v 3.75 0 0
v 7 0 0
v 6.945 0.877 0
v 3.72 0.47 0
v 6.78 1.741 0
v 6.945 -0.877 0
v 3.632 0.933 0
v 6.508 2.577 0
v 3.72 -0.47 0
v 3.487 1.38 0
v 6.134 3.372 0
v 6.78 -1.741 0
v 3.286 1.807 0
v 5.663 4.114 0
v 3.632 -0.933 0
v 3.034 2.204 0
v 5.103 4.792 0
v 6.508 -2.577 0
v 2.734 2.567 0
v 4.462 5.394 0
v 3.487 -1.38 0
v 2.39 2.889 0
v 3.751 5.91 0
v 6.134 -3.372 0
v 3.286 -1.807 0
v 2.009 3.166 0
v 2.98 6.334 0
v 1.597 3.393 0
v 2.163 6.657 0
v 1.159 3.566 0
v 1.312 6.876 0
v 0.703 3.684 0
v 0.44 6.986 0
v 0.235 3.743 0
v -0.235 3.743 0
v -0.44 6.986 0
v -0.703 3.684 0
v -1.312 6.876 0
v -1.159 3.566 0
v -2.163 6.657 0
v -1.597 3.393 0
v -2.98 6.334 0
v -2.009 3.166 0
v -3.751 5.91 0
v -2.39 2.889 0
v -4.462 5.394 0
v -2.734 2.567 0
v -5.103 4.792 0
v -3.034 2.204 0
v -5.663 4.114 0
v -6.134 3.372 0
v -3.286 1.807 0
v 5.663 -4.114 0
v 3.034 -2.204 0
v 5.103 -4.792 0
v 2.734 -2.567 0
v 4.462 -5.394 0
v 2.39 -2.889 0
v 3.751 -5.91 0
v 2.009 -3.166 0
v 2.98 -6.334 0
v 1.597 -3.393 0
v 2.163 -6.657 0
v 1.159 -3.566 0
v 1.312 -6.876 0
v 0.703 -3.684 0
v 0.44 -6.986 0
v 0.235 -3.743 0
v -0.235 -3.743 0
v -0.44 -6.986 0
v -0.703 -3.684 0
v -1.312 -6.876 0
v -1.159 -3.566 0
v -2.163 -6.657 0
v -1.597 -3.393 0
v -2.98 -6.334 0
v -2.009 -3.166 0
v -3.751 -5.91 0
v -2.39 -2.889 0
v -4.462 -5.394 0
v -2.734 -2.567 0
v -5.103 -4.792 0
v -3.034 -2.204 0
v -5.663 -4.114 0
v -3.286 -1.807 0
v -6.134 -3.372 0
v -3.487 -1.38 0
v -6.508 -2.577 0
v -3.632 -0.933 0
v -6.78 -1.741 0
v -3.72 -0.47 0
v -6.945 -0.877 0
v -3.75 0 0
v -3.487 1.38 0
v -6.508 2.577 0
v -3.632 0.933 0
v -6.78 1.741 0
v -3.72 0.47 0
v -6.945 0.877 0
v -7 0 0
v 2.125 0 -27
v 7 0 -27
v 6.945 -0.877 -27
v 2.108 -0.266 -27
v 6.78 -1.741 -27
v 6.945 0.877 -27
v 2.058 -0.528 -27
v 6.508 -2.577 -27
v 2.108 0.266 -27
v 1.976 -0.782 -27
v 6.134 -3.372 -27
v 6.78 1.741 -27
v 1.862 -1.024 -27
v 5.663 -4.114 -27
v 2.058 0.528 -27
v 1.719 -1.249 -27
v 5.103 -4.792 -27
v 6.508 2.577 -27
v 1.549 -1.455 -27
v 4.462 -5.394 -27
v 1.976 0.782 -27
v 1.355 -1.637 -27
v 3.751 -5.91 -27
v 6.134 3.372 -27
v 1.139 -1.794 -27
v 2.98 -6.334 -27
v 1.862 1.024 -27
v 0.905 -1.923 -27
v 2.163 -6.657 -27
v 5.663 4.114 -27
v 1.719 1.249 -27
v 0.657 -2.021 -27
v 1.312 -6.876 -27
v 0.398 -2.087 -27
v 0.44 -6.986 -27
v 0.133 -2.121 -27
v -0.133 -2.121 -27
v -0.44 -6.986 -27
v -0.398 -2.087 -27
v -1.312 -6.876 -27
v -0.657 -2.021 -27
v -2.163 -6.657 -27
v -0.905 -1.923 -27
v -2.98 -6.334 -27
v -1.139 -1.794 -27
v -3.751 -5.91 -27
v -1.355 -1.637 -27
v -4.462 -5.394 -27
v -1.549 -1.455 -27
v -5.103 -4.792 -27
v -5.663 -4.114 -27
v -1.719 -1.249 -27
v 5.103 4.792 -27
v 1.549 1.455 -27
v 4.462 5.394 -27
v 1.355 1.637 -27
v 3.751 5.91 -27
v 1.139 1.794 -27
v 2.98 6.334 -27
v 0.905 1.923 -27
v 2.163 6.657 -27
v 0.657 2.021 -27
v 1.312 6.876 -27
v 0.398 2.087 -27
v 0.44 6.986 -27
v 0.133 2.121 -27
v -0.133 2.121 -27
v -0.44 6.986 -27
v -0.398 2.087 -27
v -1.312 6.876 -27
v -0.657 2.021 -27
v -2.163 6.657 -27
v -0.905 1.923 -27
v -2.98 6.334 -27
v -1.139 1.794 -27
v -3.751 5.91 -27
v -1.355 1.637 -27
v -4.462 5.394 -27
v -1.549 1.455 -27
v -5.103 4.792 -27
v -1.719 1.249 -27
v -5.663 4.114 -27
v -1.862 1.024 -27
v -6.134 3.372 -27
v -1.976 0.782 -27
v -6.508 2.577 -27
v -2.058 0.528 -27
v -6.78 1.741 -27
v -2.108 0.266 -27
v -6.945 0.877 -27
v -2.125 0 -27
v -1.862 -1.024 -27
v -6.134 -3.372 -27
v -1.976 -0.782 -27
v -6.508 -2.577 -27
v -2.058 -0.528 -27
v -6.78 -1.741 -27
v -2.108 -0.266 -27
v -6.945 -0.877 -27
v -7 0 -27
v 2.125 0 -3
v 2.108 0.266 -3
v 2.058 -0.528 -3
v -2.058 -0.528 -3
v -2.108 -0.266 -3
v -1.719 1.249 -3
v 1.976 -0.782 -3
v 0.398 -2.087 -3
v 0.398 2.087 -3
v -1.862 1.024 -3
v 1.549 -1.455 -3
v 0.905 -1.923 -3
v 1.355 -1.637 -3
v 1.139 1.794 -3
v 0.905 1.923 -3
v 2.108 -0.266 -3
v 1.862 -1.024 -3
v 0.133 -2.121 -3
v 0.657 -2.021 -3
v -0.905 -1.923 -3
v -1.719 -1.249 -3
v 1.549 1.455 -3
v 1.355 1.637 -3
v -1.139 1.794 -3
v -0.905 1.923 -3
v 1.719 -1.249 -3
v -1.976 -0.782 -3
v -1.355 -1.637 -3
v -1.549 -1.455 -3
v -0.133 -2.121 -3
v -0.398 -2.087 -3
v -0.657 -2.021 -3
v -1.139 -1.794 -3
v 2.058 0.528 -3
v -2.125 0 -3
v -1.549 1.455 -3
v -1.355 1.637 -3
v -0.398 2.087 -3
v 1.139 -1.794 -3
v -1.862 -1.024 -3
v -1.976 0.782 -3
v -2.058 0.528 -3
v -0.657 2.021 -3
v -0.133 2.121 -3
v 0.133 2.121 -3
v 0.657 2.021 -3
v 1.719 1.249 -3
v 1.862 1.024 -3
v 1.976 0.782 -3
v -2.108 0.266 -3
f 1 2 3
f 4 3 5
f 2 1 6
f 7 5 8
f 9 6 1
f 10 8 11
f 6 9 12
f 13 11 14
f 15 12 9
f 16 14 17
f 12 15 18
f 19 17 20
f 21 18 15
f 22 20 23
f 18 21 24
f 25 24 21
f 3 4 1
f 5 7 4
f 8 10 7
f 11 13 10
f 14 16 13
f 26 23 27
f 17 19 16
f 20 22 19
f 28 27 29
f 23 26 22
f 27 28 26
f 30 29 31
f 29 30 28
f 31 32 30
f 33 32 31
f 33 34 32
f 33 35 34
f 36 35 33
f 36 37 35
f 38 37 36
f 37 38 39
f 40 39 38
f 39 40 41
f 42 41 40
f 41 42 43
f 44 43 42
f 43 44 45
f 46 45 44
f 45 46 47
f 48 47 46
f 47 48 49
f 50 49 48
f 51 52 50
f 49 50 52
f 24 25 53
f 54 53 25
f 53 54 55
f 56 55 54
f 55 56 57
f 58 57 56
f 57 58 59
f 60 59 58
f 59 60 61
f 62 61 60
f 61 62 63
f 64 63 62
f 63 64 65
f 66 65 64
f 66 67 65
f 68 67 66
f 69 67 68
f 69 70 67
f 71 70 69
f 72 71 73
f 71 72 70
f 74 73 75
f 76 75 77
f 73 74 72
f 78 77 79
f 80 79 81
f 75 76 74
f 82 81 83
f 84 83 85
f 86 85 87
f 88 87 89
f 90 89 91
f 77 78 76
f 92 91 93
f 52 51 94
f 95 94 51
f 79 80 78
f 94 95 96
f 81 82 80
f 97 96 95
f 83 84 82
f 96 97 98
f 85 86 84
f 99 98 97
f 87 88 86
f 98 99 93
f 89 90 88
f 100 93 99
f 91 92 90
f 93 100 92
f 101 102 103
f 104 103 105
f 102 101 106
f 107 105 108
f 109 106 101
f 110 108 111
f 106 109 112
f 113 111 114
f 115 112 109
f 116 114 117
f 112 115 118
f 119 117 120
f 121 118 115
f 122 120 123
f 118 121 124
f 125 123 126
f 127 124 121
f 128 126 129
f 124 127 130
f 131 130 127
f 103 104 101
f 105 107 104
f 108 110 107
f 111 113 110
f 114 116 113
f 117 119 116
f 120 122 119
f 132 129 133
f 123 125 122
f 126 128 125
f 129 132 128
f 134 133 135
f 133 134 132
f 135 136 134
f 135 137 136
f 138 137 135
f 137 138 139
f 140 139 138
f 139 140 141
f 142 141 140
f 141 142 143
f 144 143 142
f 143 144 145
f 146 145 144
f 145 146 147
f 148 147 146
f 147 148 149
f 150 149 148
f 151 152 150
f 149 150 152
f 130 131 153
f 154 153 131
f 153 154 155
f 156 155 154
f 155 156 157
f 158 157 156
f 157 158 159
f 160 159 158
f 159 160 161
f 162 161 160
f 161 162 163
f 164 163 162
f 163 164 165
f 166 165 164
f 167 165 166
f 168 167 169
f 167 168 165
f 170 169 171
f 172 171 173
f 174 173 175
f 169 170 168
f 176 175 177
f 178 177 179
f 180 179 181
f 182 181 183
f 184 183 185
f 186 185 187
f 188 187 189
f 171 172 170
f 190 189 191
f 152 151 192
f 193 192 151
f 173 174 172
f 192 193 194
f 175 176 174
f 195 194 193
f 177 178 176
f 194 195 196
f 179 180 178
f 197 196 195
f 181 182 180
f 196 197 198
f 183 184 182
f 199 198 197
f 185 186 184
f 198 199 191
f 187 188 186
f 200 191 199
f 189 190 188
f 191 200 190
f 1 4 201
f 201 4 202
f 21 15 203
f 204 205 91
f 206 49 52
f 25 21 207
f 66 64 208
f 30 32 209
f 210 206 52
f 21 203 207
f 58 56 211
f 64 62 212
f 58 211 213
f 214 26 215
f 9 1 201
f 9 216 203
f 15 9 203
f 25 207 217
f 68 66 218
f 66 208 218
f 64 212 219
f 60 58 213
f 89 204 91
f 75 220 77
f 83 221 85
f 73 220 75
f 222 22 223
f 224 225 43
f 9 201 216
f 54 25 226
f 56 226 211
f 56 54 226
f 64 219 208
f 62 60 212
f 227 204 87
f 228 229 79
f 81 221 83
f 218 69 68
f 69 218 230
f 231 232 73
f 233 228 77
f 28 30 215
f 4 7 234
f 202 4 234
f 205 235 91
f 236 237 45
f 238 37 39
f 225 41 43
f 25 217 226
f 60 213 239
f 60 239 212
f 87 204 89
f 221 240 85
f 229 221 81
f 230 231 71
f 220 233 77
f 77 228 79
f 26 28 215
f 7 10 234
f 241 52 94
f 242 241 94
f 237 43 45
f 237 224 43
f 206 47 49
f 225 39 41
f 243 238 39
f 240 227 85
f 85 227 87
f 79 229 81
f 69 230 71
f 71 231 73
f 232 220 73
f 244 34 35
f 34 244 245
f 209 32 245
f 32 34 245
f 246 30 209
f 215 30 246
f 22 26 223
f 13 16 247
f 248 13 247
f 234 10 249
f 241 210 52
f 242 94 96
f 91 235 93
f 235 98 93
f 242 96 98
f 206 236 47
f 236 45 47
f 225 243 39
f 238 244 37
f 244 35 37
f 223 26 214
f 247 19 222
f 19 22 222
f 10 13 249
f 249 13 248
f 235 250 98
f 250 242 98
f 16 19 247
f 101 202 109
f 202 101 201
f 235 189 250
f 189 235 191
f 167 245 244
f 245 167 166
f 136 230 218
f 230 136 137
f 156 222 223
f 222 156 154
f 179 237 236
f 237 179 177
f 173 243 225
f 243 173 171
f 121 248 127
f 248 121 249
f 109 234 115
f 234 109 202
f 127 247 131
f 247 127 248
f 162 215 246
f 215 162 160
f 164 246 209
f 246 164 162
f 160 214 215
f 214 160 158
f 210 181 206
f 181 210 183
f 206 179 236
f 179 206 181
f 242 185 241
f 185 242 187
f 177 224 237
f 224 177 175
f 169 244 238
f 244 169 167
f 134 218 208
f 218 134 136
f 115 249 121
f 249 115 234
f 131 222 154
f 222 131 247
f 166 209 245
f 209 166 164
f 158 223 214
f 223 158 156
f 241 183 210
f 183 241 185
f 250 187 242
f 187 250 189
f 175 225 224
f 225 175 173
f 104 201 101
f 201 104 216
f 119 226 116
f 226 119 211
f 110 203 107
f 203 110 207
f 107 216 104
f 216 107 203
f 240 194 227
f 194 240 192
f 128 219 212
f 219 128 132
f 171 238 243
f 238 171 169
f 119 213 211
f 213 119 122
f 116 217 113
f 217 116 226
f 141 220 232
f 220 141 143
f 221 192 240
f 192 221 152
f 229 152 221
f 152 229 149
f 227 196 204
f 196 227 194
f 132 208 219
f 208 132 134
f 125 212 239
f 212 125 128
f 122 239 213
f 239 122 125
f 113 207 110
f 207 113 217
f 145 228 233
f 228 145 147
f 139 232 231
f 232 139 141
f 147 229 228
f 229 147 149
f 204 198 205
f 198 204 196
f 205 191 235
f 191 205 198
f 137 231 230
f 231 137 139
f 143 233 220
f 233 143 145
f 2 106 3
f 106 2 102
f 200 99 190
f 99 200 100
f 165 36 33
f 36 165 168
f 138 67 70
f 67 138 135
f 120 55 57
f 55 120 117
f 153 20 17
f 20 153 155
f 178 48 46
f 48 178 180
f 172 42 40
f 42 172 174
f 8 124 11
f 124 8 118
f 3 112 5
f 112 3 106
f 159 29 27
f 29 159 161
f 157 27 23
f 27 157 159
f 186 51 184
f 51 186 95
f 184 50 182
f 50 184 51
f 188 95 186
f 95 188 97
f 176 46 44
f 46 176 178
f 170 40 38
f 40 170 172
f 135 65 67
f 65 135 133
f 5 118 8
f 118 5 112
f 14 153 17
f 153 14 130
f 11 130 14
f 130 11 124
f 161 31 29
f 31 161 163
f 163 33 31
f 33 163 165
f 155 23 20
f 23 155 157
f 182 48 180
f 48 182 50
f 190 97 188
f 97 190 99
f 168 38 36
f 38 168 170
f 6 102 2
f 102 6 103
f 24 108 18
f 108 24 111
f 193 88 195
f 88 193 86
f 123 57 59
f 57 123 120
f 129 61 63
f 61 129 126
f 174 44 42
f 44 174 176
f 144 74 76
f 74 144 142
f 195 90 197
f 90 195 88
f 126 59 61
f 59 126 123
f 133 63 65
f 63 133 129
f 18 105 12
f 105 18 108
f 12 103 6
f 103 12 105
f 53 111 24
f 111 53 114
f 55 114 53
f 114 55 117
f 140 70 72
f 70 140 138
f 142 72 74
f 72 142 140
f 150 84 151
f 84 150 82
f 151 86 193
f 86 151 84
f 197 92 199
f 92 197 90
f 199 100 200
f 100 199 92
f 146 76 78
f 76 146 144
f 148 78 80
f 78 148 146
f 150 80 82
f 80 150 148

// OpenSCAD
$fn = 50;


difference() {
	union() {
		translate(v = [0, 0, -27.0000000000]) {
			cylinder(h = 27, r = 7.0000000000);
		}
	}
	union() {
		translate(v = [0, 0, 0]) {
			rotate(a = [0, 0, 0]) {
				difference() {
					union() {
						#translate(v = [0, 0, -27.0000000000]) {
							cylinder(h = 27, r = 2.0000000000);
						}
						#translate(v = [0, 0, -3]) {
							cylinder(h = 3, r = 7.0000000000, r1 = 2.1250000000, r2 = 3.7500000000);
						}
						#translate(v = [0, 0, -27.0000000000]) {
							cylinder(h = 27, r = 2.1250000000);
						}
						#translate(v = [0, 0, -27.0000000000]) {
							cylinder(h = 27, r = 2.0000000000);
						}
					}
					union();
				}
			}
		}
	}
}
